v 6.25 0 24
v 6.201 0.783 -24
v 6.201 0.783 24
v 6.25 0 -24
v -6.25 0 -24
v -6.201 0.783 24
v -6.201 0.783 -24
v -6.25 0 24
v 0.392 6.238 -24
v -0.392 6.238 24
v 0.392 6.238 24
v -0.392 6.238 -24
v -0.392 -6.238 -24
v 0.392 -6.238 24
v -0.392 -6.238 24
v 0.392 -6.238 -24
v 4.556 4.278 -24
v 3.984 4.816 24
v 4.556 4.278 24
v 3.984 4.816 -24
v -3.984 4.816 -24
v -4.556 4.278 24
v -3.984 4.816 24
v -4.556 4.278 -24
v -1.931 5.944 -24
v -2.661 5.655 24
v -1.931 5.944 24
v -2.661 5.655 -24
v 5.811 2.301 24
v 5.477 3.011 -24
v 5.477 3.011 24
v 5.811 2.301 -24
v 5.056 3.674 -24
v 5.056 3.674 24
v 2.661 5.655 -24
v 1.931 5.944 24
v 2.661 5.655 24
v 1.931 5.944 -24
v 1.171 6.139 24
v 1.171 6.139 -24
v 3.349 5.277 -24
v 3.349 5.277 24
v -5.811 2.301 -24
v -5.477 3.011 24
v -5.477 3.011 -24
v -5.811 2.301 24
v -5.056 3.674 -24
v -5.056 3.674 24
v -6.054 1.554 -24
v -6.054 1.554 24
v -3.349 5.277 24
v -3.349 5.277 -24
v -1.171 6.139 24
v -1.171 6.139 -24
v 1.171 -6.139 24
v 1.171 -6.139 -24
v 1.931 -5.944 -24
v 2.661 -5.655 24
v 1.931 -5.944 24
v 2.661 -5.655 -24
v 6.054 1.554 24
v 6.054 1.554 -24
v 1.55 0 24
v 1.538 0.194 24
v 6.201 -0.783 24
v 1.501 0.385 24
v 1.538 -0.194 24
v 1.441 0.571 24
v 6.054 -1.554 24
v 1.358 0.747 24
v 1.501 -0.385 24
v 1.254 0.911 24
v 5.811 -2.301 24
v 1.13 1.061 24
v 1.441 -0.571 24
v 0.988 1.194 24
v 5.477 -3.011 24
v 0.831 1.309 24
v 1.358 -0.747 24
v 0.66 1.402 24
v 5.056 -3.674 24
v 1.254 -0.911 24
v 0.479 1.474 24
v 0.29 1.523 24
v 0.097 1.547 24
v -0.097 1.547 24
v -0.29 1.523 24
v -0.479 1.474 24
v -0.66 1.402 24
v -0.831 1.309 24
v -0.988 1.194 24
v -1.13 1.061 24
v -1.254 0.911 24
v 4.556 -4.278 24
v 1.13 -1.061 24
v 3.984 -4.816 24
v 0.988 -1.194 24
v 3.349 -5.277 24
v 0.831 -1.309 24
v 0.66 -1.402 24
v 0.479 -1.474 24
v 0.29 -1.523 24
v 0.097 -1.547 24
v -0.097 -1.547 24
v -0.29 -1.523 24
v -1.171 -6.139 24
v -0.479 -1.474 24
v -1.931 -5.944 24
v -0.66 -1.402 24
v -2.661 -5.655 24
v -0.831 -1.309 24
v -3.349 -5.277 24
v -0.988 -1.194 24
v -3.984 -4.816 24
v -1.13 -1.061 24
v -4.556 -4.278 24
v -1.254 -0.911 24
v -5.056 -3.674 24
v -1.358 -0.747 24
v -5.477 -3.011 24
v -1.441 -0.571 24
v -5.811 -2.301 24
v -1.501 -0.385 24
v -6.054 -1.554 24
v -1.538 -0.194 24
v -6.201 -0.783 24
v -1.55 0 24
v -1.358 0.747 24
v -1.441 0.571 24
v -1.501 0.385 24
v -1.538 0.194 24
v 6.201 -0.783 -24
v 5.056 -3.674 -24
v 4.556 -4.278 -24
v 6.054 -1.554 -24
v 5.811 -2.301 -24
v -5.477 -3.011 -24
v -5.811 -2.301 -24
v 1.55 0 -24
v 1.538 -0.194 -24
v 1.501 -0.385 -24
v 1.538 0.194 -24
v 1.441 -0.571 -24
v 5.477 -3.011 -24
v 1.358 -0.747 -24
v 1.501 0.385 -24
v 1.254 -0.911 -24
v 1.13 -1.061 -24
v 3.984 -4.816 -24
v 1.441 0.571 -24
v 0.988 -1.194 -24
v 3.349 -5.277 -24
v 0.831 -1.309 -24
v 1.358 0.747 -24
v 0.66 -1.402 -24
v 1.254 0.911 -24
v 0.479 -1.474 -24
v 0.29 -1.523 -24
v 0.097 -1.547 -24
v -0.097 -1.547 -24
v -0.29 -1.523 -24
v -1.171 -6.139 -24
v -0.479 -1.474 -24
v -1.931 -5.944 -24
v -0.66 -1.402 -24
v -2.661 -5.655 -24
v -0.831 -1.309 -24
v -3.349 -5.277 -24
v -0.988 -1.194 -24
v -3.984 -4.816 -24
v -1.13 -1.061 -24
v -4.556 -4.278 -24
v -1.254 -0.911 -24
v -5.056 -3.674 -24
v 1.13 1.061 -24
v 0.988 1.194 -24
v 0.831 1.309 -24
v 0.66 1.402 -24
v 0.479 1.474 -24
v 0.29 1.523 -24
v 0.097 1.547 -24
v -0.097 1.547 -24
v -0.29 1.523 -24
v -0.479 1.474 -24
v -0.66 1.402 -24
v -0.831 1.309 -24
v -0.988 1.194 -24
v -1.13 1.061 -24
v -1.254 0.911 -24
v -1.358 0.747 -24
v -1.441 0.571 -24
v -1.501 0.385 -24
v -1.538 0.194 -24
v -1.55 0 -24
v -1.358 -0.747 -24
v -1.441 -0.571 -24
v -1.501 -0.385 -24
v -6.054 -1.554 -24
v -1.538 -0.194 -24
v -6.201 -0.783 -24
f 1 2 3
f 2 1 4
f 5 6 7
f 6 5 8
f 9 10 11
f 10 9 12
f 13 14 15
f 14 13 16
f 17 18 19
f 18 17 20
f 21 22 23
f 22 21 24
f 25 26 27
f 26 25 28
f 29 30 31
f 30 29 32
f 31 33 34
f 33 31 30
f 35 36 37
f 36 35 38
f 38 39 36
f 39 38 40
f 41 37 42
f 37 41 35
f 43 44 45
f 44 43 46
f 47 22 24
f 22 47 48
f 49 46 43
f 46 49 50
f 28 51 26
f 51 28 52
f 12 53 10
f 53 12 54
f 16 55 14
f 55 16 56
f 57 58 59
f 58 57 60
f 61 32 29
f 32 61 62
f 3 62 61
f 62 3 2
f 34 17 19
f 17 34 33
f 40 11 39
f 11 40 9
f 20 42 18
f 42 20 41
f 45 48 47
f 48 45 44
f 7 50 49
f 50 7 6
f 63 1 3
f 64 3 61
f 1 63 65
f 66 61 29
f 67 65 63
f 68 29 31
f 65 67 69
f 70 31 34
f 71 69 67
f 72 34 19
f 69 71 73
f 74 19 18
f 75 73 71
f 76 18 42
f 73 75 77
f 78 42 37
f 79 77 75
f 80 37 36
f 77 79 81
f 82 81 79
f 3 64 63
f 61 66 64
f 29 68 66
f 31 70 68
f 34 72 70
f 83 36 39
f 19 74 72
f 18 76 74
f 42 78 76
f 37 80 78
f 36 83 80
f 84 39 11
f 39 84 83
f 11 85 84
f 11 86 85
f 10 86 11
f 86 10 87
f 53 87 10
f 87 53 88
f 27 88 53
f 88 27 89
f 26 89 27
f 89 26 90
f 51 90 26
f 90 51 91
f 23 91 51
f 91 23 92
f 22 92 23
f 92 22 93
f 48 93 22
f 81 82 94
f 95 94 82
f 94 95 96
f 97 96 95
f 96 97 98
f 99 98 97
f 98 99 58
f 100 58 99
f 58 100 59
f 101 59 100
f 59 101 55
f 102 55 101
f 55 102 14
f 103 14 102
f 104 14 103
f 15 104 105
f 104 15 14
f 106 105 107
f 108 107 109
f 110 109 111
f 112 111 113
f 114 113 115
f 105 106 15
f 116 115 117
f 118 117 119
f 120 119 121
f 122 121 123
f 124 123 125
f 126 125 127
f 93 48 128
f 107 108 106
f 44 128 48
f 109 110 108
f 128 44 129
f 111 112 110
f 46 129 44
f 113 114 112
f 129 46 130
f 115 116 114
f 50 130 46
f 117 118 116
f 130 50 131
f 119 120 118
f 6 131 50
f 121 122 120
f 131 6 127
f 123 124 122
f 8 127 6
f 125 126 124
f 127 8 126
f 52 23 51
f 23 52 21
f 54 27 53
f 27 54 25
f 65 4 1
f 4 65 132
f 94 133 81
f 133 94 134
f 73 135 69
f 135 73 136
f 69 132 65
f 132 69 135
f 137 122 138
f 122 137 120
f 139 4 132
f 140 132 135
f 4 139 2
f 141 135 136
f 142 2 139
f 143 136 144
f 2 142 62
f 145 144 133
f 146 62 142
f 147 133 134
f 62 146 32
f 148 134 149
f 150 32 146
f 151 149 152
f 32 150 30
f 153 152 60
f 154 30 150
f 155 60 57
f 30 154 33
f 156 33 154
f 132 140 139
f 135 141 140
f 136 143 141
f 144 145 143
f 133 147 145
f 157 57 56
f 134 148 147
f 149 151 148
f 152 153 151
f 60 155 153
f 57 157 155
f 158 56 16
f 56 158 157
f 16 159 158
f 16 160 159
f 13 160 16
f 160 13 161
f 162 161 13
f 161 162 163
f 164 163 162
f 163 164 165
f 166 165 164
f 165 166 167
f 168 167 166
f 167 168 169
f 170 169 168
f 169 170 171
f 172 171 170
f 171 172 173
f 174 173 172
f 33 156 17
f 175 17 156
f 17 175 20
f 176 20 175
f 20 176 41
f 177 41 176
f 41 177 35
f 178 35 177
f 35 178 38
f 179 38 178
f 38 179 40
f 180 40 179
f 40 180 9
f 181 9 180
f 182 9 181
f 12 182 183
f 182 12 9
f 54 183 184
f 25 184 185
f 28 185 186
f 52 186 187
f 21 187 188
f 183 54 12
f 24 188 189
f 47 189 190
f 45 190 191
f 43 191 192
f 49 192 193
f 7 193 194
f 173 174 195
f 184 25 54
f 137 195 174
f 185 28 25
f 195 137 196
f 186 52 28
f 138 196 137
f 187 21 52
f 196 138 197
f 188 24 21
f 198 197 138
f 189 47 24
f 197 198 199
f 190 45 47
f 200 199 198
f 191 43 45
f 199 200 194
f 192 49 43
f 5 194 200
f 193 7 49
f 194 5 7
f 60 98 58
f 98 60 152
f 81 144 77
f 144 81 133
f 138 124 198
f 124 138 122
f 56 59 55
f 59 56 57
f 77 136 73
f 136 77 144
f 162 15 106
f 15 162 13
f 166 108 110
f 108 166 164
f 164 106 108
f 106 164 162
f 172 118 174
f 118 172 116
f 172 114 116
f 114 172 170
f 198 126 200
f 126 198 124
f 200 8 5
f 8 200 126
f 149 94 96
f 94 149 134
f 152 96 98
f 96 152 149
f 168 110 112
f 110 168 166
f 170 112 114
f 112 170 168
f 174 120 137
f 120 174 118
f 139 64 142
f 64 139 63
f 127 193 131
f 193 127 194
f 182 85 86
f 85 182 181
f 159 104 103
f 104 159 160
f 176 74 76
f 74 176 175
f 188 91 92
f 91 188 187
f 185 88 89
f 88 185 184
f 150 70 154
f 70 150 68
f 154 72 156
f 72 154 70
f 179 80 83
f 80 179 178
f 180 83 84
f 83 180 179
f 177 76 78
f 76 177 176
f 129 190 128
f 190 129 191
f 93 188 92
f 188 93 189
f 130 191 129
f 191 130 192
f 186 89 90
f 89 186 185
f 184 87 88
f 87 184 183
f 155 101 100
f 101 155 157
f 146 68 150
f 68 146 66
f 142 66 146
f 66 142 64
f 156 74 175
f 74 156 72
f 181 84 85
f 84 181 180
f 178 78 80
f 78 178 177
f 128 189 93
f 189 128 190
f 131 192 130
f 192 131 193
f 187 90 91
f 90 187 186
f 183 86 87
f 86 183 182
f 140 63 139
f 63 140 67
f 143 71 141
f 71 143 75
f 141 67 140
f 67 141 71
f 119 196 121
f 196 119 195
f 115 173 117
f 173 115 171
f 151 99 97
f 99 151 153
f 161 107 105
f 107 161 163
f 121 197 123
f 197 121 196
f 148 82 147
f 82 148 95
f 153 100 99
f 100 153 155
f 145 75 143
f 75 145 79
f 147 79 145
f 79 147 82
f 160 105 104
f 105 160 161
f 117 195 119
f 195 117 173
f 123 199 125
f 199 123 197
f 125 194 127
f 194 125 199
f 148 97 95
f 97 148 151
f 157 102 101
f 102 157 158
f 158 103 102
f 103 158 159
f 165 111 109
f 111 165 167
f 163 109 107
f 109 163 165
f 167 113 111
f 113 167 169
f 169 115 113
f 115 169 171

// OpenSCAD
$fn = 50;


difference() {
	union() {
		translate(v = [0, 0, -24.0000000000]) {
			cylinder(h = 48, r = 6.2500000000);
		}
	}
	union() {
		translate(v = [0, 0, -100.0000000000]) {
			cylinder(h = 200, r = 1.5500000000);
		}
	}
}
